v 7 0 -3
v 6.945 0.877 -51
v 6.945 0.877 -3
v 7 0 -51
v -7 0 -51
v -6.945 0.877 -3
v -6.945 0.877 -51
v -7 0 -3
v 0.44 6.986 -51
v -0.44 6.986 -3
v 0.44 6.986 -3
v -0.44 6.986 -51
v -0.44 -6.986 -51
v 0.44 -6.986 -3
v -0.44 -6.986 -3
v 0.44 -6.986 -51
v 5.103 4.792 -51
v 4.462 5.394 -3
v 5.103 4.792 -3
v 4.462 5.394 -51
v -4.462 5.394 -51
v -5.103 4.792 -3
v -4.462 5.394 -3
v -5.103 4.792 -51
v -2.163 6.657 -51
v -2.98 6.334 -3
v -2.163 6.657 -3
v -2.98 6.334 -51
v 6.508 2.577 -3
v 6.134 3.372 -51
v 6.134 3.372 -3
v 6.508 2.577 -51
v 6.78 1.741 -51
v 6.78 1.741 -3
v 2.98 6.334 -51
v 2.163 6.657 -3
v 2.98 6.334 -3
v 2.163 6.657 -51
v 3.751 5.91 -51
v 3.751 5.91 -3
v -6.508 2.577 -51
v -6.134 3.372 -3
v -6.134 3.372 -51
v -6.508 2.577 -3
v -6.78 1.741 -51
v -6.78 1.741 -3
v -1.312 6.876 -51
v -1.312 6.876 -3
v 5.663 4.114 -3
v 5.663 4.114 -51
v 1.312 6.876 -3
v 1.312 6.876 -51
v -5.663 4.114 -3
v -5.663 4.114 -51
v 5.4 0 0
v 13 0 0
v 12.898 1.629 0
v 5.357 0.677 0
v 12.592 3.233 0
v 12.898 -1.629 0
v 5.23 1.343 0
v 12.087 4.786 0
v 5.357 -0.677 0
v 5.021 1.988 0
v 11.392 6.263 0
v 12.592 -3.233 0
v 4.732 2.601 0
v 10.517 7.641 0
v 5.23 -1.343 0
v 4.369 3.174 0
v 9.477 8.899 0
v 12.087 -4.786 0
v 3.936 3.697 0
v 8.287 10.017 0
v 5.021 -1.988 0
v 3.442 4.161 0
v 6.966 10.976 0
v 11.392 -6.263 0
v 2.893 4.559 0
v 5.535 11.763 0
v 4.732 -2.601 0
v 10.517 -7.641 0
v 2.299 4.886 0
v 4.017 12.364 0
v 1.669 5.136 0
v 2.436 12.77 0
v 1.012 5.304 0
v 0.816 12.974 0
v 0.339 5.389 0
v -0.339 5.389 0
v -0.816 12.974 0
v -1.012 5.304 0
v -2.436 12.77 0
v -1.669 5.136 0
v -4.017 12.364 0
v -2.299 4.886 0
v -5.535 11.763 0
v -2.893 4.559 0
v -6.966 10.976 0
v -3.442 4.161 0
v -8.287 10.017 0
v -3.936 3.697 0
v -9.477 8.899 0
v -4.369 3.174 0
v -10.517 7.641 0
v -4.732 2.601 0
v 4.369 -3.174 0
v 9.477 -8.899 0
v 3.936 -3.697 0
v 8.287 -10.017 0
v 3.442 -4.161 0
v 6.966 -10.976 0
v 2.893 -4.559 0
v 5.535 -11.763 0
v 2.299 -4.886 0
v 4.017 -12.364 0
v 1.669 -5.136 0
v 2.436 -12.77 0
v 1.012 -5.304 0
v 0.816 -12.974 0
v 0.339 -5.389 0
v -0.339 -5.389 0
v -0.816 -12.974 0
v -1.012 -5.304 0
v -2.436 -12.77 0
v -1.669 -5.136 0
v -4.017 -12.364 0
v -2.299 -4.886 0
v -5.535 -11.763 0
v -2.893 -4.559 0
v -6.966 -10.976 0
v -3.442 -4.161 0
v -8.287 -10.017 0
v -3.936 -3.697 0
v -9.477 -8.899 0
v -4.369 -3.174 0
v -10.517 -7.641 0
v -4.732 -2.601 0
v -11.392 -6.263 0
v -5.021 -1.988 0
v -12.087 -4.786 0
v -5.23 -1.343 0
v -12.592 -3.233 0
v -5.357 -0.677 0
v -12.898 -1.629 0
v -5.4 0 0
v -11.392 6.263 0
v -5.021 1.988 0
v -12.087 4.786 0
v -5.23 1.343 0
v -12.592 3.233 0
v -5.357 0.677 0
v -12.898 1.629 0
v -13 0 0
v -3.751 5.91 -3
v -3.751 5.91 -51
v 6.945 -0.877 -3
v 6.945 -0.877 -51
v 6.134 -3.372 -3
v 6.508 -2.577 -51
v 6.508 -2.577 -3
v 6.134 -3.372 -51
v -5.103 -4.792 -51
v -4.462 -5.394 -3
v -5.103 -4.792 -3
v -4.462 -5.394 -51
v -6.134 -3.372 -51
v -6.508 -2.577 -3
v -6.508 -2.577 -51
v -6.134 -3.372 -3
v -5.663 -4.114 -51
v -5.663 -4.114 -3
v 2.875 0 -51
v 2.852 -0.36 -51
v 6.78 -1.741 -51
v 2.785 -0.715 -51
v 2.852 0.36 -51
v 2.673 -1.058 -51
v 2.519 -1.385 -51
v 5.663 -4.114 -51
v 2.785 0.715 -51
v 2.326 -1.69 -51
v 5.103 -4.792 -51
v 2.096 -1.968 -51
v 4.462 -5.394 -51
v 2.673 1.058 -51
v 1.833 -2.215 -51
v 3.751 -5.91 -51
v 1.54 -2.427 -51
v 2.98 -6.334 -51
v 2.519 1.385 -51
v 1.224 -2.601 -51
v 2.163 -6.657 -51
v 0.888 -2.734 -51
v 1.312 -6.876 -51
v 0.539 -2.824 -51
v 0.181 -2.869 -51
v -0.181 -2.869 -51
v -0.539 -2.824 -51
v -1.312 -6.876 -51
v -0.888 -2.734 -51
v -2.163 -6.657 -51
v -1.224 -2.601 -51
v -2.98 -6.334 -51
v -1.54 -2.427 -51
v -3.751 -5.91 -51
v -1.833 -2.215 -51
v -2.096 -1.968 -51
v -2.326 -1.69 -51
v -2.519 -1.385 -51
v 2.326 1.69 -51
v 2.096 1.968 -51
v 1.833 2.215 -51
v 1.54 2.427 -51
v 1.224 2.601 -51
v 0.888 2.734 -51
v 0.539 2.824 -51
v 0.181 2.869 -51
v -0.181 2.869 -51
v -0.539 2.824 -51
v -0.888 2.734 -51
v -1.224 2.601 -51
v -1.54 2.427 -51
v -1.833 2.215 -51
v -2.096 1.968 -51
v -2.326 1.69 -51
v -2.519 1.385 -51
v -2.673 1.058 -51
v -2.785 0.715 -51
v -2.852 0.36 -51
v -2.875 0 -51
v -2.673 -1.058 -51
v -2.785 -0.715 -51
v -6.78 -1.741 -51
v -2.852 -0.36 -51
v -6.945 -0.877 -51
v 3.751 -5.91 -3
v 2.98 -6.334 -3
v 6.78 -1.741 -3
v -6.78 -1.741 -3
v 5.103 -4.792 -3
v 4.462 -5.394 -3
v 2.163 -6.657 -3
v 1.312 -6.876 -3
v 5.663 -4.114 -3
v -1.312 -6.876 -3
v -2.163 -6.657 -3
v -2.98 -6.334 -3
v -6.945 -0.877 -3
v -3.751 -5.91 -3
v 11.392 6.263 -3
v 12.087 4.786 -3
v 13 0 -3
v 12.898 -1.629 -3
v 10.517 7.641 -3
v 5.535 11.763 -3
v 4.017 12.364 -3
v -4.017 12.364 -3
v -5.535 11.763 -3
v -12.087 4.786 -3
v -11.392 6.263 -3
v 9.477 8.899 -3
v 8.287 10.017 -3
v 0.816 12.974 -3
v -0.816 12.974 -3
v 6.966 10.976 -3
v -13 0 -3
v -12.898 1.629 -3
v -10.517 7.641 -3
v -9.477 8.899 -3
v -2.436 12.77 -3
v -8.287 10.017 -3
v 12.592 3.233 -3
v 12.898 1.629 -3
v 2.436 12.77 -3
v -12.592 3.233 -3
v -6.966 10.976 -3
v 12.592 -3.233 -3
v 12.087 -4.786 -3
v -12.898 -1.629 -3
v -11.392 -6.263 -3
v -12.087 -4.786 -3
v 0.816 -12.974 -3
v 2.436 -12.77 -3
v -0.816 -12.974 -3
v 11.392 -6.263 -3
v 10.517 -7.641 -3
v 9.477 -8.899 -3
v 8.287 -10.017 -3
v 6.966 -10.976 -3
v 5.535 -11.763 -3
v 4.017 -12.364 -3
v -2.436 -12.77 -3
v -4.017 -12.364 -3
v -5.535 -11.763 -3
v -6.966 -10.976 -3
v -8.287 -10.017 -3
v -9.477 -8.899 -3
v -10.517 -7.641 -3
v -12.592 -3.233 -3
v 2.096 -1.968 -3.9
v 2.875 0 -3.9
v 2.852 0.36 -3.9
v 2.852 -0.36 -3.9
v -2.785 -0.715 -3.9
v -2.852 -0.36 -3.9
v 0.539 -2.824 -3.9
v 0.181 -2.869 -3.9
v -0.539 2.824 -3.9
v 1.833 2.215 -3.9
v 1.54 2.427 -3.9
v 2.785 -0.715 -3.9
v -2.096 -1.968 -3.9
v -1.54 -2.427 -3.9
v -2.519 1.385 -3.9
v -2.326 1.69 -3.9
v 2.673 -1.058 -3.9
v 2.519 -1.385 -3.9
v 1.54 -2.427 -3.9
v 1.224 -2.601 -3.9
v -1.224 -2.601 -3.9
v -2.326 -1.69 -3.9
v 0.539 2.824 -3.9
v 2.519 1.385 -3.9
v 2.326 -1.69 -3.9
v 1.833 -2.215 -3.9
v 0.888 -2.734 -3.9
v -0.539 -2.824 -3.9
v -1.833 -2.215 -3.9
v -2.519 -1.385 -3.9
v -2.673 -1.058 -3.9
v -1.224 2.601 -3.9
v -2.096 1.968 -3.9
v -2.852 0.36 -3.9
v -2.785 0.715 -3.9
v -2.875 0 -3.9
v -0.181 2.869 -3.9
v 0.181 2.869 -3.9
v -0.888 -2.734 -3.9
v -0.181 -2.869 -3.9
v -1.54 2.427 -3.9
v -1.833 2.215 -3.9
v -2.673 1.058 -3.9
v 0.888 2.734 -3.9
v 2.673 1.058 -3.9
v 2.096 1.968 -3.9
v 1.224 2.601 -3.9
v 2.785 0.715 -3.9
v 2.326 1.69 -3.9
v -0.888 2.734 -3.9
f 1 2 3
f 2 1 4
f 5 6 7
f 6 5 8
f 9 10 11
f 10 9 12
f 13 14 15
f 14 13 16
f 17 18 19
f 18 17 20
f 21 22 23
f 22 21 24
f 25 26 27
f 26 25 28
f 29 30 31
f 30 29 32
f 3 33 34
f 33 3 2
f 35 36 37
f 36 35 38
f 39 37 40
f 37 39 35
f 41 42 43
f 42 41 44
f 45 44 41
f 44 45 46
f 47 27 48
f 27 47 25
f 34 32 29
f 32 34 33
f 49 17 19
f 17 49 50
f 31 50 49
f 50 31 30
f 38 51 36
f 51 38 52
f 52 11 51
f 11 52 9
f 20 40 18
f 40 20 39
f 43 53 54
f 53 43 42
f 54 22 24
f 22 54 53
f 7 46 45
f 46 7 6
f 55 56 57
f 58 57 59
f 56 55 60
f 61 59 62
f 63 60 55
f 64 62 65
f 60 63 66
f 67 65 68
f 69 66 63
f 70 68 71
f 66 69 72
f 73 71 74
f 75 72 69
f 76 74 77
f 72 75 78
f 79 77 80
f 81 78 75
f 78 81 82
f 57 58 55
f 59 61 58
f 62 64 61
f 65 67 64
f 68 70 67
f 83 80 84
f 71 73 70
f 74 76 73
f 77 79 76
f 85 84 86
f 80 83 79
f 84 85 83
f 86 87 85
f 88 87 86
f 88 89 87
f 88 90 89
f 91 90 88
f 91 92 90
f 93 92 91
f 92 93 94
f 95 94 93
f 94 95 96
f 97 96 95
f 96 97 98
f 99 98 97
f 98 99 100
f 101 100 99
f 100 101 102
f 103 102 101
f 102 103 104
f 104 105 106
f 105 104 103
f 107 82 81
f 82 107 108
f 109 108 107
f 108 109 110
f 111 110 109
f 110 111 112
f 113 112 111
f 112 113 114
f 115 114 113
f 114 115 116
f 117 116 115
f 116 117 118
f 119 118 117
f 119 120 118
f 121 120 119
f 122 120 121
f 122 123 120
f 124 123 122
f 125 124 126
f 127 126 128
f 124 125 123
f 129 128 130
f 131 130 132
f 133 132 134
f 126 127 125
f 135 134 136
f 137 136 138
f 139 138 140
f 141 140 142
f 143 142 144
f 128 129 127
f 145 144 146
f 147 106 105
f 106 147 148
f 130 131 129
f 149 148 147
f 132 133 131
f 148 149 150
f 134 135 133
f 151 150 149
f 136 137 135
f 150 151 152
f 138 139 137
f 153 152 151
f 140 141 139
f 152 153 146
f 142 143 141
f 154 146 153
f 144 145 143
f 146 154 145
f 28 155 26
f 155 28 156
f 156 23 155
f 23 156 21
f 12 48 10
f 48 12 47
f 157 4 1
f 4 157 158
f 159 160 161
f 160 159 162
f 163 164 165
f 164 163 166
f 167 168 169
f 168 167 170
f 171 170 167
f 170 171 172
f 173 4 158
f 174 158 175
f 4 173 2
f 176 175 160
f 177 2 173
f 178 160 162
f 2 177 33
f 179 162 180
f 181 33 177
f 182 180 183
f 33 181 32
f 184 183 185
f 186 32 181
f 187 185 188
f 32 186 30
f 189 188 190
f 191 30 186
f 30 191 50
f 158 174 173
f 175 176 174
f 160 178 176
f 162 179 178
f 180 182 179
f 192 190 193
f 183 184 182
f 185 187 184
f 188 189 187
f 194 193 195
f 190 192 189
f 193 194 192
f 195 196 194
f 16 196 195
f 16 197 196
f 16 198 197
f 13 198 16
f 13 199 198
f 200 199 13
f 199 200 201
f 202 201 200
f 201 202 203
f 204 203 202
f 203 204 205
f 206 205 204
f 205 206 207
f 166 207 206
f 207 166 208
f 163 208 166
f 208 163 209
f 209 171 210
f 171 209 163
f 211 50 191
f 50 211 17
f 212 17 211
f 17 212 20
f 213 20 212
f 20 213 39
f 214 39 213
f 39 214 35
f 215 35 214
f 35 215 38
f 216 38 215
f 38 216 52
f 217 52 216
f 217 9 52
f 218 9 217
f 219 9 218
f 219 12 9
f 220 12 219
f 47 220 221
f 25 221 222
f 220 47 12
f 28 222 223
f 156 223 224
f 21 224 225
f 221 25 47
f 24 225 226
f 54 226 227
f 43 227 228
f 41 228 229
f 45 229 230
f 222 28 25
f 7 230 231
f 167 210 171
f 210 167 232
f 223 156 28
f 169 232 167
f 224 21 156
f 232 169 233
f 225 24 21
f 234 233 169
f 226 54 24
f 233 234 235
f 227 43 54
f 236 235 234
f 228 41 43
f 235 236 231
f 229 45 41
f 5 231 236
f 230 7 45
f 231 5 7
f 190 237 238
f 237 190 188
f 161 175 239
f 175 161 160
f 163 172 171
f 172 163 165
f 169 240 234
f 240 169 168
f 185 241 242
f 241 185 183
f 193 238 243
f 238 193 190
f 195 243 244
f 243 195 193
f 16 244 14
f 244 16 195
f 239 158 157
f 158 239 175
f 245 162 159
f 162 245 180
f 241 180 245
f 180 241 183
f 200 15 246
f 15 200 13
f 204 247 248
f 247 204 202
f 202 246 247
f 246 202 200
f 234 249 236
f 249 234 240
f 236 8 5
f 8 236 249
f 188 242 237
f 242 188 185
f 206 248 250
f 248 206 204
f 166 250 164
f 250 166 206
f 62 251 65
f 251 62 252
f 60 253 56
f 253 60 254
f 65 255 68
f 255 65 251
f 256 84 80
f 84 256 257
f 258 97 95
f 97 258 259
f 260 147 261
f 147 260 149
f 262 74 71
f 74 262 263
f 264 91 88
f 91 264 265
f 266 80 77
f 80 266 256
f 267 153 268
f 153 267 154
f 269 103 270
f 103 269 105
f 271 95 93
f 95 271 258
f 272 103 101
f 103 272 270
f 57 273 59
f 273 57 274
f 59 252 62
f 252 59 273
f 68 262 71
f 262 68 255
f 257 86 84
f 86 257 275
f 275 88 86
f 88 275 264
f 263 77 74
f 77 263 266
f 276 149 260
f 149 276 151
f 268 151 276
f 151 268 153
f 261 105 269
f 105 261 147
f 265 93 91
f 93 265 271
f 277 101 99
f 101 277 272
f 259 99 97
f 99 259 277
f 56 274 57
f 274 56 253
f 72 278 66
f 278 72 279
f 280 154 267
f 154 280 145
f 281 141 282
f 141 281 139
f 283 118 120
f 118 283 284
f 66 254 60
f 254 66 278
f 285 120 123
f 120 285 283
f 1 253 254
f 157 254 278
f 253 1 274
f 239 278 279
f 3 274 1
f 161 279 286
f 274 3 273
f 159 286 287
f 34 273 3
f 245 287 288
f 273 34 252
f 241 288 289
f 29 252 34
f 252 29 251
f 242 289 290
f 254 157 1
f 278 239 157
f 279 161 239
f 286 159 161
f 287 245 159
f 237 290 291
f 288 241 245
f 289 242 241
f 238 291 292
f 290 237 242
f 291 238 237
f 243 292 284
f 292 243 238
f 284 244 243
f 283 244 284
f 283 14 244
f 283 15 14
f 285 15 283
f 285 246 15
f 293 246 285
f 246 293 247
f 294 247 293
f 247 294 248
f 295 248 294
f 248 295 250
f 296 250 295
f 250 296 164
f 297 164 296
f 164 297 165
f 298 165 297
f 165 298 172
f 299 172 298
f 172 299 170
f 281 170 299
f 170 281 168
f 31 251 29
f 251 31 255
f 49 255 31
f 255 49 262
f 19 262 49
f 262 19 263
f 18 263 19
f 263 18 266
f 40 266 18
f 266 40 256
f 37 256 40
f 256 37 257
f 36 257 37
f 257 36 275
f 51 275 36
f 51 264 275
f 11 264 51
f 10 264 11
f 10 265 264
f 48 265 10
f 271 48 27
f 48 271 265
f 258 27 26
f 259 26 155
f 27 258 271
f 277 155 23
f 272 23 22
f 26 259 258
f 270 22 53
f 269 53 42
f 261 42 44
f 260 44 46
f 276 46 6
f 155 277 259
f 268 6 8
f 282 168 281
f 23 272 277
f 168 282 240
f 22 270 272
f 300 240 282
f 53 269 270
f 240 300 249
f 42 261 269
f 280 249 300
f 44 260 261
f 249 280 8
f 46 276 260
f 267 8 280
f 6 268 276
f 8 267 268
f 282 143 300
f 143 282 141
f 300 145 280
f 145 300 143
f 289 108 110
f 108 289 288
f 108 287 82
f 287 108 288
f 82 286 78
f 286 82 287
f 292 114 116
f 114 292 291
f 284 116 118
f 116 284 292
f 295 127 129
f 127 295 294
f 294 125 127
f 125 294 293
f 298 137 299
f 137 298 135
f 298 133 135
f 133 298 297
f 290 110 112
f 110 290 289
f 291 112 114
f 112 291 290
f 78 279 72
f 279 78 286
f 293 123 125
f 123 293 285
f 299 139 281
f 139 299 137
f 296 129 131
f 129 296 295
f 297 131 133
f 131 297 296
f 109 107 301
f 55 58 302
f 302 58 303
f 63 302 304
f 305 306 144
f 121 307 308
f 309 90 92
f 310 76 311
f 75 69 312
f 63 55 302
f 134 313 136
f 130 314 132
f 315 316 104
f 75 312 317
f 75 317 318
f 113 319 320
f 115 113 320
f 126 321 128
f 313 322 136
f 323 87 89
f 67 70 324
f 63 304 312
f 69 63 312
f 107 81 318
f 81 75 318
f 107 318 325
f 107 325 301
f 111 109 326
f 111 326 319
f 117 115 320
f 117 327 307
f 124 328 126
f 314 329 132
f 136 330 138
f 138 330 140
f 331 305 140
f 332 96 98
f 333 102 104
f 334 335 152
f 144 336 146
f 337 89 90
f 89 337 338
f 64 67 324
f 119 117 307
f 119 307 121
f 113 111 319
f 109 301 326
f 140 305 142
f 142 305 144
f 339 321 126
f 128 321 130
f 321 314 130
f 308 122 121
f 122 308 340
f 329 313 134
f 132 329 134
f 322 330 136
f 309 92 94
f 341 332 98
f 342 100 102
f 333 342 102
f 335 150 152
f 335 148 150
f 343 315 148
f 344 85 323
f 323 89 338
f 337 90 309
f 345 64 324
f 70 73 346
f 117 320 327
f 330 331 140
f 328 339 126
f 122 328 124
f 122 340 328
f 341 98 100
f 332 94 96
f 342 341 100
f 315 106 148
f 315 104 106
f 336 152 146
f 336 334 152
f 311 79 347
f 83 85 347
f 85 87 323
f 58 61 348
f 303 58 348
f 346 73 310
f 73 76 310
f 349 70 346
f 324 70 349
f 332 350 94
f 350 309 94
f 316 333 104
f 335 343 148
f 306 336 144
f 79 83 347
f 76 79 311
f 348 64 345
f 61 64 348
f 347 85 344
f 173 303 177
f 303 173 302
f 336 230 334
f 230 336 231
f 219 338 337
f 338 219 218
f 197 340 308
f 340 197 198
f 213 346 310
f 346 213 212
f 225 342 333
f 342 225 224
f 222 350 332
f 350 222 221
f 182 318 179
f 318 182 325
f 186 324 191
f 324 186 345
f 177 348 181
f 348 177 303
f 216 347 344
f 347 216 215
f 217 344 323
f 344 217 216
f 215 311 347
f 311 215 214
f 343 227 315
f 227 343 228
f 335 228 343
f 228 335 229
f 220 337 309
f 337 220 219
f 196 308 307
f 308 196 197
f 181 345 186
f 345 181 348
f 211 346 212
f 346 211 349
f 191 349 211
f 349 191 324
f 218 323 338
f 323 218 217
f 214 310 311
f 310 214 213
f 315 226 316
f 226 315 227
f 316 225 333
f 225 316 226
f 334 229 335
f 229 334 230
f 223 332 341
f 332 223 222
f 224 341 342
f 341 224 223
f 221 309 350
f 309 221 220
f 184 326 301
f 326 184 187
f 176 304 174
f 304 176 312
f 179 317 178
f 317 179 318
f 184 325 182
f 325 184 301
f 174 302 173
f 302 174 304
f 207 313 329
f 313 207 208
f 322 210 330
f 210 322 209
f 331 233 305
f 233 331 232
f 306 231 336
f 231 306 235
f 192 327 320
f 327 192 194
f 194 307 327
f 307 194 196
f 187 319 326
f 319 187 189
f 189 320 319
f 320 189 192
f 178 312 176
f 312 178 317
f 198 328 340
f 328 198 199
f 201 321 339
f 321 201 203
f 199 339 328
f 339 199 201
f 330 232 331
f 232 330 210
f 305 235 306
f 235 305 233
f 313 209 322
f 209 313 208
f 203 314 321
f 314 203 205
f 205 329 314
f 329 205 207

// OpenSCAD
$fn = 50;


difference() {
	union() {
		translate(v = [0, 0, -51.0000000000]) {
			cylinder(h = 51, r = 7.0000000000);
		}
		translate(v = [0, 0, -3.0000000000]) {
			cylinder(h = 3, r = 13.0000000000);
		}
	}
	union() {
		translate(v = [0, 0, 0]) {
			rotate(a = [0, 0, 0]) {
				difference() {
					union() {
						#translate(v = [0, 0, -51.0000000000]) {
							cylinder(h = 51, r = 2.6000000000);
						}
						#translate(v = [0, 0, -3.9000000000]) {
							cylinder(h = 3.9000000000, r = 7.0000000000, r1 = 2.8750000000, r2 = 5.4000000000);
						}
						#translate(v = [0, 0, -51.0000000000]) {
							cylinder(h = 51, r = 2.8750000000);
						}
						#translate(v = [0, 0, -51.0000000000]) {
							cylinder(h = 51, r = 2.6000000000);
						}
					}
					union();
				}
			}
		}
	}
}
